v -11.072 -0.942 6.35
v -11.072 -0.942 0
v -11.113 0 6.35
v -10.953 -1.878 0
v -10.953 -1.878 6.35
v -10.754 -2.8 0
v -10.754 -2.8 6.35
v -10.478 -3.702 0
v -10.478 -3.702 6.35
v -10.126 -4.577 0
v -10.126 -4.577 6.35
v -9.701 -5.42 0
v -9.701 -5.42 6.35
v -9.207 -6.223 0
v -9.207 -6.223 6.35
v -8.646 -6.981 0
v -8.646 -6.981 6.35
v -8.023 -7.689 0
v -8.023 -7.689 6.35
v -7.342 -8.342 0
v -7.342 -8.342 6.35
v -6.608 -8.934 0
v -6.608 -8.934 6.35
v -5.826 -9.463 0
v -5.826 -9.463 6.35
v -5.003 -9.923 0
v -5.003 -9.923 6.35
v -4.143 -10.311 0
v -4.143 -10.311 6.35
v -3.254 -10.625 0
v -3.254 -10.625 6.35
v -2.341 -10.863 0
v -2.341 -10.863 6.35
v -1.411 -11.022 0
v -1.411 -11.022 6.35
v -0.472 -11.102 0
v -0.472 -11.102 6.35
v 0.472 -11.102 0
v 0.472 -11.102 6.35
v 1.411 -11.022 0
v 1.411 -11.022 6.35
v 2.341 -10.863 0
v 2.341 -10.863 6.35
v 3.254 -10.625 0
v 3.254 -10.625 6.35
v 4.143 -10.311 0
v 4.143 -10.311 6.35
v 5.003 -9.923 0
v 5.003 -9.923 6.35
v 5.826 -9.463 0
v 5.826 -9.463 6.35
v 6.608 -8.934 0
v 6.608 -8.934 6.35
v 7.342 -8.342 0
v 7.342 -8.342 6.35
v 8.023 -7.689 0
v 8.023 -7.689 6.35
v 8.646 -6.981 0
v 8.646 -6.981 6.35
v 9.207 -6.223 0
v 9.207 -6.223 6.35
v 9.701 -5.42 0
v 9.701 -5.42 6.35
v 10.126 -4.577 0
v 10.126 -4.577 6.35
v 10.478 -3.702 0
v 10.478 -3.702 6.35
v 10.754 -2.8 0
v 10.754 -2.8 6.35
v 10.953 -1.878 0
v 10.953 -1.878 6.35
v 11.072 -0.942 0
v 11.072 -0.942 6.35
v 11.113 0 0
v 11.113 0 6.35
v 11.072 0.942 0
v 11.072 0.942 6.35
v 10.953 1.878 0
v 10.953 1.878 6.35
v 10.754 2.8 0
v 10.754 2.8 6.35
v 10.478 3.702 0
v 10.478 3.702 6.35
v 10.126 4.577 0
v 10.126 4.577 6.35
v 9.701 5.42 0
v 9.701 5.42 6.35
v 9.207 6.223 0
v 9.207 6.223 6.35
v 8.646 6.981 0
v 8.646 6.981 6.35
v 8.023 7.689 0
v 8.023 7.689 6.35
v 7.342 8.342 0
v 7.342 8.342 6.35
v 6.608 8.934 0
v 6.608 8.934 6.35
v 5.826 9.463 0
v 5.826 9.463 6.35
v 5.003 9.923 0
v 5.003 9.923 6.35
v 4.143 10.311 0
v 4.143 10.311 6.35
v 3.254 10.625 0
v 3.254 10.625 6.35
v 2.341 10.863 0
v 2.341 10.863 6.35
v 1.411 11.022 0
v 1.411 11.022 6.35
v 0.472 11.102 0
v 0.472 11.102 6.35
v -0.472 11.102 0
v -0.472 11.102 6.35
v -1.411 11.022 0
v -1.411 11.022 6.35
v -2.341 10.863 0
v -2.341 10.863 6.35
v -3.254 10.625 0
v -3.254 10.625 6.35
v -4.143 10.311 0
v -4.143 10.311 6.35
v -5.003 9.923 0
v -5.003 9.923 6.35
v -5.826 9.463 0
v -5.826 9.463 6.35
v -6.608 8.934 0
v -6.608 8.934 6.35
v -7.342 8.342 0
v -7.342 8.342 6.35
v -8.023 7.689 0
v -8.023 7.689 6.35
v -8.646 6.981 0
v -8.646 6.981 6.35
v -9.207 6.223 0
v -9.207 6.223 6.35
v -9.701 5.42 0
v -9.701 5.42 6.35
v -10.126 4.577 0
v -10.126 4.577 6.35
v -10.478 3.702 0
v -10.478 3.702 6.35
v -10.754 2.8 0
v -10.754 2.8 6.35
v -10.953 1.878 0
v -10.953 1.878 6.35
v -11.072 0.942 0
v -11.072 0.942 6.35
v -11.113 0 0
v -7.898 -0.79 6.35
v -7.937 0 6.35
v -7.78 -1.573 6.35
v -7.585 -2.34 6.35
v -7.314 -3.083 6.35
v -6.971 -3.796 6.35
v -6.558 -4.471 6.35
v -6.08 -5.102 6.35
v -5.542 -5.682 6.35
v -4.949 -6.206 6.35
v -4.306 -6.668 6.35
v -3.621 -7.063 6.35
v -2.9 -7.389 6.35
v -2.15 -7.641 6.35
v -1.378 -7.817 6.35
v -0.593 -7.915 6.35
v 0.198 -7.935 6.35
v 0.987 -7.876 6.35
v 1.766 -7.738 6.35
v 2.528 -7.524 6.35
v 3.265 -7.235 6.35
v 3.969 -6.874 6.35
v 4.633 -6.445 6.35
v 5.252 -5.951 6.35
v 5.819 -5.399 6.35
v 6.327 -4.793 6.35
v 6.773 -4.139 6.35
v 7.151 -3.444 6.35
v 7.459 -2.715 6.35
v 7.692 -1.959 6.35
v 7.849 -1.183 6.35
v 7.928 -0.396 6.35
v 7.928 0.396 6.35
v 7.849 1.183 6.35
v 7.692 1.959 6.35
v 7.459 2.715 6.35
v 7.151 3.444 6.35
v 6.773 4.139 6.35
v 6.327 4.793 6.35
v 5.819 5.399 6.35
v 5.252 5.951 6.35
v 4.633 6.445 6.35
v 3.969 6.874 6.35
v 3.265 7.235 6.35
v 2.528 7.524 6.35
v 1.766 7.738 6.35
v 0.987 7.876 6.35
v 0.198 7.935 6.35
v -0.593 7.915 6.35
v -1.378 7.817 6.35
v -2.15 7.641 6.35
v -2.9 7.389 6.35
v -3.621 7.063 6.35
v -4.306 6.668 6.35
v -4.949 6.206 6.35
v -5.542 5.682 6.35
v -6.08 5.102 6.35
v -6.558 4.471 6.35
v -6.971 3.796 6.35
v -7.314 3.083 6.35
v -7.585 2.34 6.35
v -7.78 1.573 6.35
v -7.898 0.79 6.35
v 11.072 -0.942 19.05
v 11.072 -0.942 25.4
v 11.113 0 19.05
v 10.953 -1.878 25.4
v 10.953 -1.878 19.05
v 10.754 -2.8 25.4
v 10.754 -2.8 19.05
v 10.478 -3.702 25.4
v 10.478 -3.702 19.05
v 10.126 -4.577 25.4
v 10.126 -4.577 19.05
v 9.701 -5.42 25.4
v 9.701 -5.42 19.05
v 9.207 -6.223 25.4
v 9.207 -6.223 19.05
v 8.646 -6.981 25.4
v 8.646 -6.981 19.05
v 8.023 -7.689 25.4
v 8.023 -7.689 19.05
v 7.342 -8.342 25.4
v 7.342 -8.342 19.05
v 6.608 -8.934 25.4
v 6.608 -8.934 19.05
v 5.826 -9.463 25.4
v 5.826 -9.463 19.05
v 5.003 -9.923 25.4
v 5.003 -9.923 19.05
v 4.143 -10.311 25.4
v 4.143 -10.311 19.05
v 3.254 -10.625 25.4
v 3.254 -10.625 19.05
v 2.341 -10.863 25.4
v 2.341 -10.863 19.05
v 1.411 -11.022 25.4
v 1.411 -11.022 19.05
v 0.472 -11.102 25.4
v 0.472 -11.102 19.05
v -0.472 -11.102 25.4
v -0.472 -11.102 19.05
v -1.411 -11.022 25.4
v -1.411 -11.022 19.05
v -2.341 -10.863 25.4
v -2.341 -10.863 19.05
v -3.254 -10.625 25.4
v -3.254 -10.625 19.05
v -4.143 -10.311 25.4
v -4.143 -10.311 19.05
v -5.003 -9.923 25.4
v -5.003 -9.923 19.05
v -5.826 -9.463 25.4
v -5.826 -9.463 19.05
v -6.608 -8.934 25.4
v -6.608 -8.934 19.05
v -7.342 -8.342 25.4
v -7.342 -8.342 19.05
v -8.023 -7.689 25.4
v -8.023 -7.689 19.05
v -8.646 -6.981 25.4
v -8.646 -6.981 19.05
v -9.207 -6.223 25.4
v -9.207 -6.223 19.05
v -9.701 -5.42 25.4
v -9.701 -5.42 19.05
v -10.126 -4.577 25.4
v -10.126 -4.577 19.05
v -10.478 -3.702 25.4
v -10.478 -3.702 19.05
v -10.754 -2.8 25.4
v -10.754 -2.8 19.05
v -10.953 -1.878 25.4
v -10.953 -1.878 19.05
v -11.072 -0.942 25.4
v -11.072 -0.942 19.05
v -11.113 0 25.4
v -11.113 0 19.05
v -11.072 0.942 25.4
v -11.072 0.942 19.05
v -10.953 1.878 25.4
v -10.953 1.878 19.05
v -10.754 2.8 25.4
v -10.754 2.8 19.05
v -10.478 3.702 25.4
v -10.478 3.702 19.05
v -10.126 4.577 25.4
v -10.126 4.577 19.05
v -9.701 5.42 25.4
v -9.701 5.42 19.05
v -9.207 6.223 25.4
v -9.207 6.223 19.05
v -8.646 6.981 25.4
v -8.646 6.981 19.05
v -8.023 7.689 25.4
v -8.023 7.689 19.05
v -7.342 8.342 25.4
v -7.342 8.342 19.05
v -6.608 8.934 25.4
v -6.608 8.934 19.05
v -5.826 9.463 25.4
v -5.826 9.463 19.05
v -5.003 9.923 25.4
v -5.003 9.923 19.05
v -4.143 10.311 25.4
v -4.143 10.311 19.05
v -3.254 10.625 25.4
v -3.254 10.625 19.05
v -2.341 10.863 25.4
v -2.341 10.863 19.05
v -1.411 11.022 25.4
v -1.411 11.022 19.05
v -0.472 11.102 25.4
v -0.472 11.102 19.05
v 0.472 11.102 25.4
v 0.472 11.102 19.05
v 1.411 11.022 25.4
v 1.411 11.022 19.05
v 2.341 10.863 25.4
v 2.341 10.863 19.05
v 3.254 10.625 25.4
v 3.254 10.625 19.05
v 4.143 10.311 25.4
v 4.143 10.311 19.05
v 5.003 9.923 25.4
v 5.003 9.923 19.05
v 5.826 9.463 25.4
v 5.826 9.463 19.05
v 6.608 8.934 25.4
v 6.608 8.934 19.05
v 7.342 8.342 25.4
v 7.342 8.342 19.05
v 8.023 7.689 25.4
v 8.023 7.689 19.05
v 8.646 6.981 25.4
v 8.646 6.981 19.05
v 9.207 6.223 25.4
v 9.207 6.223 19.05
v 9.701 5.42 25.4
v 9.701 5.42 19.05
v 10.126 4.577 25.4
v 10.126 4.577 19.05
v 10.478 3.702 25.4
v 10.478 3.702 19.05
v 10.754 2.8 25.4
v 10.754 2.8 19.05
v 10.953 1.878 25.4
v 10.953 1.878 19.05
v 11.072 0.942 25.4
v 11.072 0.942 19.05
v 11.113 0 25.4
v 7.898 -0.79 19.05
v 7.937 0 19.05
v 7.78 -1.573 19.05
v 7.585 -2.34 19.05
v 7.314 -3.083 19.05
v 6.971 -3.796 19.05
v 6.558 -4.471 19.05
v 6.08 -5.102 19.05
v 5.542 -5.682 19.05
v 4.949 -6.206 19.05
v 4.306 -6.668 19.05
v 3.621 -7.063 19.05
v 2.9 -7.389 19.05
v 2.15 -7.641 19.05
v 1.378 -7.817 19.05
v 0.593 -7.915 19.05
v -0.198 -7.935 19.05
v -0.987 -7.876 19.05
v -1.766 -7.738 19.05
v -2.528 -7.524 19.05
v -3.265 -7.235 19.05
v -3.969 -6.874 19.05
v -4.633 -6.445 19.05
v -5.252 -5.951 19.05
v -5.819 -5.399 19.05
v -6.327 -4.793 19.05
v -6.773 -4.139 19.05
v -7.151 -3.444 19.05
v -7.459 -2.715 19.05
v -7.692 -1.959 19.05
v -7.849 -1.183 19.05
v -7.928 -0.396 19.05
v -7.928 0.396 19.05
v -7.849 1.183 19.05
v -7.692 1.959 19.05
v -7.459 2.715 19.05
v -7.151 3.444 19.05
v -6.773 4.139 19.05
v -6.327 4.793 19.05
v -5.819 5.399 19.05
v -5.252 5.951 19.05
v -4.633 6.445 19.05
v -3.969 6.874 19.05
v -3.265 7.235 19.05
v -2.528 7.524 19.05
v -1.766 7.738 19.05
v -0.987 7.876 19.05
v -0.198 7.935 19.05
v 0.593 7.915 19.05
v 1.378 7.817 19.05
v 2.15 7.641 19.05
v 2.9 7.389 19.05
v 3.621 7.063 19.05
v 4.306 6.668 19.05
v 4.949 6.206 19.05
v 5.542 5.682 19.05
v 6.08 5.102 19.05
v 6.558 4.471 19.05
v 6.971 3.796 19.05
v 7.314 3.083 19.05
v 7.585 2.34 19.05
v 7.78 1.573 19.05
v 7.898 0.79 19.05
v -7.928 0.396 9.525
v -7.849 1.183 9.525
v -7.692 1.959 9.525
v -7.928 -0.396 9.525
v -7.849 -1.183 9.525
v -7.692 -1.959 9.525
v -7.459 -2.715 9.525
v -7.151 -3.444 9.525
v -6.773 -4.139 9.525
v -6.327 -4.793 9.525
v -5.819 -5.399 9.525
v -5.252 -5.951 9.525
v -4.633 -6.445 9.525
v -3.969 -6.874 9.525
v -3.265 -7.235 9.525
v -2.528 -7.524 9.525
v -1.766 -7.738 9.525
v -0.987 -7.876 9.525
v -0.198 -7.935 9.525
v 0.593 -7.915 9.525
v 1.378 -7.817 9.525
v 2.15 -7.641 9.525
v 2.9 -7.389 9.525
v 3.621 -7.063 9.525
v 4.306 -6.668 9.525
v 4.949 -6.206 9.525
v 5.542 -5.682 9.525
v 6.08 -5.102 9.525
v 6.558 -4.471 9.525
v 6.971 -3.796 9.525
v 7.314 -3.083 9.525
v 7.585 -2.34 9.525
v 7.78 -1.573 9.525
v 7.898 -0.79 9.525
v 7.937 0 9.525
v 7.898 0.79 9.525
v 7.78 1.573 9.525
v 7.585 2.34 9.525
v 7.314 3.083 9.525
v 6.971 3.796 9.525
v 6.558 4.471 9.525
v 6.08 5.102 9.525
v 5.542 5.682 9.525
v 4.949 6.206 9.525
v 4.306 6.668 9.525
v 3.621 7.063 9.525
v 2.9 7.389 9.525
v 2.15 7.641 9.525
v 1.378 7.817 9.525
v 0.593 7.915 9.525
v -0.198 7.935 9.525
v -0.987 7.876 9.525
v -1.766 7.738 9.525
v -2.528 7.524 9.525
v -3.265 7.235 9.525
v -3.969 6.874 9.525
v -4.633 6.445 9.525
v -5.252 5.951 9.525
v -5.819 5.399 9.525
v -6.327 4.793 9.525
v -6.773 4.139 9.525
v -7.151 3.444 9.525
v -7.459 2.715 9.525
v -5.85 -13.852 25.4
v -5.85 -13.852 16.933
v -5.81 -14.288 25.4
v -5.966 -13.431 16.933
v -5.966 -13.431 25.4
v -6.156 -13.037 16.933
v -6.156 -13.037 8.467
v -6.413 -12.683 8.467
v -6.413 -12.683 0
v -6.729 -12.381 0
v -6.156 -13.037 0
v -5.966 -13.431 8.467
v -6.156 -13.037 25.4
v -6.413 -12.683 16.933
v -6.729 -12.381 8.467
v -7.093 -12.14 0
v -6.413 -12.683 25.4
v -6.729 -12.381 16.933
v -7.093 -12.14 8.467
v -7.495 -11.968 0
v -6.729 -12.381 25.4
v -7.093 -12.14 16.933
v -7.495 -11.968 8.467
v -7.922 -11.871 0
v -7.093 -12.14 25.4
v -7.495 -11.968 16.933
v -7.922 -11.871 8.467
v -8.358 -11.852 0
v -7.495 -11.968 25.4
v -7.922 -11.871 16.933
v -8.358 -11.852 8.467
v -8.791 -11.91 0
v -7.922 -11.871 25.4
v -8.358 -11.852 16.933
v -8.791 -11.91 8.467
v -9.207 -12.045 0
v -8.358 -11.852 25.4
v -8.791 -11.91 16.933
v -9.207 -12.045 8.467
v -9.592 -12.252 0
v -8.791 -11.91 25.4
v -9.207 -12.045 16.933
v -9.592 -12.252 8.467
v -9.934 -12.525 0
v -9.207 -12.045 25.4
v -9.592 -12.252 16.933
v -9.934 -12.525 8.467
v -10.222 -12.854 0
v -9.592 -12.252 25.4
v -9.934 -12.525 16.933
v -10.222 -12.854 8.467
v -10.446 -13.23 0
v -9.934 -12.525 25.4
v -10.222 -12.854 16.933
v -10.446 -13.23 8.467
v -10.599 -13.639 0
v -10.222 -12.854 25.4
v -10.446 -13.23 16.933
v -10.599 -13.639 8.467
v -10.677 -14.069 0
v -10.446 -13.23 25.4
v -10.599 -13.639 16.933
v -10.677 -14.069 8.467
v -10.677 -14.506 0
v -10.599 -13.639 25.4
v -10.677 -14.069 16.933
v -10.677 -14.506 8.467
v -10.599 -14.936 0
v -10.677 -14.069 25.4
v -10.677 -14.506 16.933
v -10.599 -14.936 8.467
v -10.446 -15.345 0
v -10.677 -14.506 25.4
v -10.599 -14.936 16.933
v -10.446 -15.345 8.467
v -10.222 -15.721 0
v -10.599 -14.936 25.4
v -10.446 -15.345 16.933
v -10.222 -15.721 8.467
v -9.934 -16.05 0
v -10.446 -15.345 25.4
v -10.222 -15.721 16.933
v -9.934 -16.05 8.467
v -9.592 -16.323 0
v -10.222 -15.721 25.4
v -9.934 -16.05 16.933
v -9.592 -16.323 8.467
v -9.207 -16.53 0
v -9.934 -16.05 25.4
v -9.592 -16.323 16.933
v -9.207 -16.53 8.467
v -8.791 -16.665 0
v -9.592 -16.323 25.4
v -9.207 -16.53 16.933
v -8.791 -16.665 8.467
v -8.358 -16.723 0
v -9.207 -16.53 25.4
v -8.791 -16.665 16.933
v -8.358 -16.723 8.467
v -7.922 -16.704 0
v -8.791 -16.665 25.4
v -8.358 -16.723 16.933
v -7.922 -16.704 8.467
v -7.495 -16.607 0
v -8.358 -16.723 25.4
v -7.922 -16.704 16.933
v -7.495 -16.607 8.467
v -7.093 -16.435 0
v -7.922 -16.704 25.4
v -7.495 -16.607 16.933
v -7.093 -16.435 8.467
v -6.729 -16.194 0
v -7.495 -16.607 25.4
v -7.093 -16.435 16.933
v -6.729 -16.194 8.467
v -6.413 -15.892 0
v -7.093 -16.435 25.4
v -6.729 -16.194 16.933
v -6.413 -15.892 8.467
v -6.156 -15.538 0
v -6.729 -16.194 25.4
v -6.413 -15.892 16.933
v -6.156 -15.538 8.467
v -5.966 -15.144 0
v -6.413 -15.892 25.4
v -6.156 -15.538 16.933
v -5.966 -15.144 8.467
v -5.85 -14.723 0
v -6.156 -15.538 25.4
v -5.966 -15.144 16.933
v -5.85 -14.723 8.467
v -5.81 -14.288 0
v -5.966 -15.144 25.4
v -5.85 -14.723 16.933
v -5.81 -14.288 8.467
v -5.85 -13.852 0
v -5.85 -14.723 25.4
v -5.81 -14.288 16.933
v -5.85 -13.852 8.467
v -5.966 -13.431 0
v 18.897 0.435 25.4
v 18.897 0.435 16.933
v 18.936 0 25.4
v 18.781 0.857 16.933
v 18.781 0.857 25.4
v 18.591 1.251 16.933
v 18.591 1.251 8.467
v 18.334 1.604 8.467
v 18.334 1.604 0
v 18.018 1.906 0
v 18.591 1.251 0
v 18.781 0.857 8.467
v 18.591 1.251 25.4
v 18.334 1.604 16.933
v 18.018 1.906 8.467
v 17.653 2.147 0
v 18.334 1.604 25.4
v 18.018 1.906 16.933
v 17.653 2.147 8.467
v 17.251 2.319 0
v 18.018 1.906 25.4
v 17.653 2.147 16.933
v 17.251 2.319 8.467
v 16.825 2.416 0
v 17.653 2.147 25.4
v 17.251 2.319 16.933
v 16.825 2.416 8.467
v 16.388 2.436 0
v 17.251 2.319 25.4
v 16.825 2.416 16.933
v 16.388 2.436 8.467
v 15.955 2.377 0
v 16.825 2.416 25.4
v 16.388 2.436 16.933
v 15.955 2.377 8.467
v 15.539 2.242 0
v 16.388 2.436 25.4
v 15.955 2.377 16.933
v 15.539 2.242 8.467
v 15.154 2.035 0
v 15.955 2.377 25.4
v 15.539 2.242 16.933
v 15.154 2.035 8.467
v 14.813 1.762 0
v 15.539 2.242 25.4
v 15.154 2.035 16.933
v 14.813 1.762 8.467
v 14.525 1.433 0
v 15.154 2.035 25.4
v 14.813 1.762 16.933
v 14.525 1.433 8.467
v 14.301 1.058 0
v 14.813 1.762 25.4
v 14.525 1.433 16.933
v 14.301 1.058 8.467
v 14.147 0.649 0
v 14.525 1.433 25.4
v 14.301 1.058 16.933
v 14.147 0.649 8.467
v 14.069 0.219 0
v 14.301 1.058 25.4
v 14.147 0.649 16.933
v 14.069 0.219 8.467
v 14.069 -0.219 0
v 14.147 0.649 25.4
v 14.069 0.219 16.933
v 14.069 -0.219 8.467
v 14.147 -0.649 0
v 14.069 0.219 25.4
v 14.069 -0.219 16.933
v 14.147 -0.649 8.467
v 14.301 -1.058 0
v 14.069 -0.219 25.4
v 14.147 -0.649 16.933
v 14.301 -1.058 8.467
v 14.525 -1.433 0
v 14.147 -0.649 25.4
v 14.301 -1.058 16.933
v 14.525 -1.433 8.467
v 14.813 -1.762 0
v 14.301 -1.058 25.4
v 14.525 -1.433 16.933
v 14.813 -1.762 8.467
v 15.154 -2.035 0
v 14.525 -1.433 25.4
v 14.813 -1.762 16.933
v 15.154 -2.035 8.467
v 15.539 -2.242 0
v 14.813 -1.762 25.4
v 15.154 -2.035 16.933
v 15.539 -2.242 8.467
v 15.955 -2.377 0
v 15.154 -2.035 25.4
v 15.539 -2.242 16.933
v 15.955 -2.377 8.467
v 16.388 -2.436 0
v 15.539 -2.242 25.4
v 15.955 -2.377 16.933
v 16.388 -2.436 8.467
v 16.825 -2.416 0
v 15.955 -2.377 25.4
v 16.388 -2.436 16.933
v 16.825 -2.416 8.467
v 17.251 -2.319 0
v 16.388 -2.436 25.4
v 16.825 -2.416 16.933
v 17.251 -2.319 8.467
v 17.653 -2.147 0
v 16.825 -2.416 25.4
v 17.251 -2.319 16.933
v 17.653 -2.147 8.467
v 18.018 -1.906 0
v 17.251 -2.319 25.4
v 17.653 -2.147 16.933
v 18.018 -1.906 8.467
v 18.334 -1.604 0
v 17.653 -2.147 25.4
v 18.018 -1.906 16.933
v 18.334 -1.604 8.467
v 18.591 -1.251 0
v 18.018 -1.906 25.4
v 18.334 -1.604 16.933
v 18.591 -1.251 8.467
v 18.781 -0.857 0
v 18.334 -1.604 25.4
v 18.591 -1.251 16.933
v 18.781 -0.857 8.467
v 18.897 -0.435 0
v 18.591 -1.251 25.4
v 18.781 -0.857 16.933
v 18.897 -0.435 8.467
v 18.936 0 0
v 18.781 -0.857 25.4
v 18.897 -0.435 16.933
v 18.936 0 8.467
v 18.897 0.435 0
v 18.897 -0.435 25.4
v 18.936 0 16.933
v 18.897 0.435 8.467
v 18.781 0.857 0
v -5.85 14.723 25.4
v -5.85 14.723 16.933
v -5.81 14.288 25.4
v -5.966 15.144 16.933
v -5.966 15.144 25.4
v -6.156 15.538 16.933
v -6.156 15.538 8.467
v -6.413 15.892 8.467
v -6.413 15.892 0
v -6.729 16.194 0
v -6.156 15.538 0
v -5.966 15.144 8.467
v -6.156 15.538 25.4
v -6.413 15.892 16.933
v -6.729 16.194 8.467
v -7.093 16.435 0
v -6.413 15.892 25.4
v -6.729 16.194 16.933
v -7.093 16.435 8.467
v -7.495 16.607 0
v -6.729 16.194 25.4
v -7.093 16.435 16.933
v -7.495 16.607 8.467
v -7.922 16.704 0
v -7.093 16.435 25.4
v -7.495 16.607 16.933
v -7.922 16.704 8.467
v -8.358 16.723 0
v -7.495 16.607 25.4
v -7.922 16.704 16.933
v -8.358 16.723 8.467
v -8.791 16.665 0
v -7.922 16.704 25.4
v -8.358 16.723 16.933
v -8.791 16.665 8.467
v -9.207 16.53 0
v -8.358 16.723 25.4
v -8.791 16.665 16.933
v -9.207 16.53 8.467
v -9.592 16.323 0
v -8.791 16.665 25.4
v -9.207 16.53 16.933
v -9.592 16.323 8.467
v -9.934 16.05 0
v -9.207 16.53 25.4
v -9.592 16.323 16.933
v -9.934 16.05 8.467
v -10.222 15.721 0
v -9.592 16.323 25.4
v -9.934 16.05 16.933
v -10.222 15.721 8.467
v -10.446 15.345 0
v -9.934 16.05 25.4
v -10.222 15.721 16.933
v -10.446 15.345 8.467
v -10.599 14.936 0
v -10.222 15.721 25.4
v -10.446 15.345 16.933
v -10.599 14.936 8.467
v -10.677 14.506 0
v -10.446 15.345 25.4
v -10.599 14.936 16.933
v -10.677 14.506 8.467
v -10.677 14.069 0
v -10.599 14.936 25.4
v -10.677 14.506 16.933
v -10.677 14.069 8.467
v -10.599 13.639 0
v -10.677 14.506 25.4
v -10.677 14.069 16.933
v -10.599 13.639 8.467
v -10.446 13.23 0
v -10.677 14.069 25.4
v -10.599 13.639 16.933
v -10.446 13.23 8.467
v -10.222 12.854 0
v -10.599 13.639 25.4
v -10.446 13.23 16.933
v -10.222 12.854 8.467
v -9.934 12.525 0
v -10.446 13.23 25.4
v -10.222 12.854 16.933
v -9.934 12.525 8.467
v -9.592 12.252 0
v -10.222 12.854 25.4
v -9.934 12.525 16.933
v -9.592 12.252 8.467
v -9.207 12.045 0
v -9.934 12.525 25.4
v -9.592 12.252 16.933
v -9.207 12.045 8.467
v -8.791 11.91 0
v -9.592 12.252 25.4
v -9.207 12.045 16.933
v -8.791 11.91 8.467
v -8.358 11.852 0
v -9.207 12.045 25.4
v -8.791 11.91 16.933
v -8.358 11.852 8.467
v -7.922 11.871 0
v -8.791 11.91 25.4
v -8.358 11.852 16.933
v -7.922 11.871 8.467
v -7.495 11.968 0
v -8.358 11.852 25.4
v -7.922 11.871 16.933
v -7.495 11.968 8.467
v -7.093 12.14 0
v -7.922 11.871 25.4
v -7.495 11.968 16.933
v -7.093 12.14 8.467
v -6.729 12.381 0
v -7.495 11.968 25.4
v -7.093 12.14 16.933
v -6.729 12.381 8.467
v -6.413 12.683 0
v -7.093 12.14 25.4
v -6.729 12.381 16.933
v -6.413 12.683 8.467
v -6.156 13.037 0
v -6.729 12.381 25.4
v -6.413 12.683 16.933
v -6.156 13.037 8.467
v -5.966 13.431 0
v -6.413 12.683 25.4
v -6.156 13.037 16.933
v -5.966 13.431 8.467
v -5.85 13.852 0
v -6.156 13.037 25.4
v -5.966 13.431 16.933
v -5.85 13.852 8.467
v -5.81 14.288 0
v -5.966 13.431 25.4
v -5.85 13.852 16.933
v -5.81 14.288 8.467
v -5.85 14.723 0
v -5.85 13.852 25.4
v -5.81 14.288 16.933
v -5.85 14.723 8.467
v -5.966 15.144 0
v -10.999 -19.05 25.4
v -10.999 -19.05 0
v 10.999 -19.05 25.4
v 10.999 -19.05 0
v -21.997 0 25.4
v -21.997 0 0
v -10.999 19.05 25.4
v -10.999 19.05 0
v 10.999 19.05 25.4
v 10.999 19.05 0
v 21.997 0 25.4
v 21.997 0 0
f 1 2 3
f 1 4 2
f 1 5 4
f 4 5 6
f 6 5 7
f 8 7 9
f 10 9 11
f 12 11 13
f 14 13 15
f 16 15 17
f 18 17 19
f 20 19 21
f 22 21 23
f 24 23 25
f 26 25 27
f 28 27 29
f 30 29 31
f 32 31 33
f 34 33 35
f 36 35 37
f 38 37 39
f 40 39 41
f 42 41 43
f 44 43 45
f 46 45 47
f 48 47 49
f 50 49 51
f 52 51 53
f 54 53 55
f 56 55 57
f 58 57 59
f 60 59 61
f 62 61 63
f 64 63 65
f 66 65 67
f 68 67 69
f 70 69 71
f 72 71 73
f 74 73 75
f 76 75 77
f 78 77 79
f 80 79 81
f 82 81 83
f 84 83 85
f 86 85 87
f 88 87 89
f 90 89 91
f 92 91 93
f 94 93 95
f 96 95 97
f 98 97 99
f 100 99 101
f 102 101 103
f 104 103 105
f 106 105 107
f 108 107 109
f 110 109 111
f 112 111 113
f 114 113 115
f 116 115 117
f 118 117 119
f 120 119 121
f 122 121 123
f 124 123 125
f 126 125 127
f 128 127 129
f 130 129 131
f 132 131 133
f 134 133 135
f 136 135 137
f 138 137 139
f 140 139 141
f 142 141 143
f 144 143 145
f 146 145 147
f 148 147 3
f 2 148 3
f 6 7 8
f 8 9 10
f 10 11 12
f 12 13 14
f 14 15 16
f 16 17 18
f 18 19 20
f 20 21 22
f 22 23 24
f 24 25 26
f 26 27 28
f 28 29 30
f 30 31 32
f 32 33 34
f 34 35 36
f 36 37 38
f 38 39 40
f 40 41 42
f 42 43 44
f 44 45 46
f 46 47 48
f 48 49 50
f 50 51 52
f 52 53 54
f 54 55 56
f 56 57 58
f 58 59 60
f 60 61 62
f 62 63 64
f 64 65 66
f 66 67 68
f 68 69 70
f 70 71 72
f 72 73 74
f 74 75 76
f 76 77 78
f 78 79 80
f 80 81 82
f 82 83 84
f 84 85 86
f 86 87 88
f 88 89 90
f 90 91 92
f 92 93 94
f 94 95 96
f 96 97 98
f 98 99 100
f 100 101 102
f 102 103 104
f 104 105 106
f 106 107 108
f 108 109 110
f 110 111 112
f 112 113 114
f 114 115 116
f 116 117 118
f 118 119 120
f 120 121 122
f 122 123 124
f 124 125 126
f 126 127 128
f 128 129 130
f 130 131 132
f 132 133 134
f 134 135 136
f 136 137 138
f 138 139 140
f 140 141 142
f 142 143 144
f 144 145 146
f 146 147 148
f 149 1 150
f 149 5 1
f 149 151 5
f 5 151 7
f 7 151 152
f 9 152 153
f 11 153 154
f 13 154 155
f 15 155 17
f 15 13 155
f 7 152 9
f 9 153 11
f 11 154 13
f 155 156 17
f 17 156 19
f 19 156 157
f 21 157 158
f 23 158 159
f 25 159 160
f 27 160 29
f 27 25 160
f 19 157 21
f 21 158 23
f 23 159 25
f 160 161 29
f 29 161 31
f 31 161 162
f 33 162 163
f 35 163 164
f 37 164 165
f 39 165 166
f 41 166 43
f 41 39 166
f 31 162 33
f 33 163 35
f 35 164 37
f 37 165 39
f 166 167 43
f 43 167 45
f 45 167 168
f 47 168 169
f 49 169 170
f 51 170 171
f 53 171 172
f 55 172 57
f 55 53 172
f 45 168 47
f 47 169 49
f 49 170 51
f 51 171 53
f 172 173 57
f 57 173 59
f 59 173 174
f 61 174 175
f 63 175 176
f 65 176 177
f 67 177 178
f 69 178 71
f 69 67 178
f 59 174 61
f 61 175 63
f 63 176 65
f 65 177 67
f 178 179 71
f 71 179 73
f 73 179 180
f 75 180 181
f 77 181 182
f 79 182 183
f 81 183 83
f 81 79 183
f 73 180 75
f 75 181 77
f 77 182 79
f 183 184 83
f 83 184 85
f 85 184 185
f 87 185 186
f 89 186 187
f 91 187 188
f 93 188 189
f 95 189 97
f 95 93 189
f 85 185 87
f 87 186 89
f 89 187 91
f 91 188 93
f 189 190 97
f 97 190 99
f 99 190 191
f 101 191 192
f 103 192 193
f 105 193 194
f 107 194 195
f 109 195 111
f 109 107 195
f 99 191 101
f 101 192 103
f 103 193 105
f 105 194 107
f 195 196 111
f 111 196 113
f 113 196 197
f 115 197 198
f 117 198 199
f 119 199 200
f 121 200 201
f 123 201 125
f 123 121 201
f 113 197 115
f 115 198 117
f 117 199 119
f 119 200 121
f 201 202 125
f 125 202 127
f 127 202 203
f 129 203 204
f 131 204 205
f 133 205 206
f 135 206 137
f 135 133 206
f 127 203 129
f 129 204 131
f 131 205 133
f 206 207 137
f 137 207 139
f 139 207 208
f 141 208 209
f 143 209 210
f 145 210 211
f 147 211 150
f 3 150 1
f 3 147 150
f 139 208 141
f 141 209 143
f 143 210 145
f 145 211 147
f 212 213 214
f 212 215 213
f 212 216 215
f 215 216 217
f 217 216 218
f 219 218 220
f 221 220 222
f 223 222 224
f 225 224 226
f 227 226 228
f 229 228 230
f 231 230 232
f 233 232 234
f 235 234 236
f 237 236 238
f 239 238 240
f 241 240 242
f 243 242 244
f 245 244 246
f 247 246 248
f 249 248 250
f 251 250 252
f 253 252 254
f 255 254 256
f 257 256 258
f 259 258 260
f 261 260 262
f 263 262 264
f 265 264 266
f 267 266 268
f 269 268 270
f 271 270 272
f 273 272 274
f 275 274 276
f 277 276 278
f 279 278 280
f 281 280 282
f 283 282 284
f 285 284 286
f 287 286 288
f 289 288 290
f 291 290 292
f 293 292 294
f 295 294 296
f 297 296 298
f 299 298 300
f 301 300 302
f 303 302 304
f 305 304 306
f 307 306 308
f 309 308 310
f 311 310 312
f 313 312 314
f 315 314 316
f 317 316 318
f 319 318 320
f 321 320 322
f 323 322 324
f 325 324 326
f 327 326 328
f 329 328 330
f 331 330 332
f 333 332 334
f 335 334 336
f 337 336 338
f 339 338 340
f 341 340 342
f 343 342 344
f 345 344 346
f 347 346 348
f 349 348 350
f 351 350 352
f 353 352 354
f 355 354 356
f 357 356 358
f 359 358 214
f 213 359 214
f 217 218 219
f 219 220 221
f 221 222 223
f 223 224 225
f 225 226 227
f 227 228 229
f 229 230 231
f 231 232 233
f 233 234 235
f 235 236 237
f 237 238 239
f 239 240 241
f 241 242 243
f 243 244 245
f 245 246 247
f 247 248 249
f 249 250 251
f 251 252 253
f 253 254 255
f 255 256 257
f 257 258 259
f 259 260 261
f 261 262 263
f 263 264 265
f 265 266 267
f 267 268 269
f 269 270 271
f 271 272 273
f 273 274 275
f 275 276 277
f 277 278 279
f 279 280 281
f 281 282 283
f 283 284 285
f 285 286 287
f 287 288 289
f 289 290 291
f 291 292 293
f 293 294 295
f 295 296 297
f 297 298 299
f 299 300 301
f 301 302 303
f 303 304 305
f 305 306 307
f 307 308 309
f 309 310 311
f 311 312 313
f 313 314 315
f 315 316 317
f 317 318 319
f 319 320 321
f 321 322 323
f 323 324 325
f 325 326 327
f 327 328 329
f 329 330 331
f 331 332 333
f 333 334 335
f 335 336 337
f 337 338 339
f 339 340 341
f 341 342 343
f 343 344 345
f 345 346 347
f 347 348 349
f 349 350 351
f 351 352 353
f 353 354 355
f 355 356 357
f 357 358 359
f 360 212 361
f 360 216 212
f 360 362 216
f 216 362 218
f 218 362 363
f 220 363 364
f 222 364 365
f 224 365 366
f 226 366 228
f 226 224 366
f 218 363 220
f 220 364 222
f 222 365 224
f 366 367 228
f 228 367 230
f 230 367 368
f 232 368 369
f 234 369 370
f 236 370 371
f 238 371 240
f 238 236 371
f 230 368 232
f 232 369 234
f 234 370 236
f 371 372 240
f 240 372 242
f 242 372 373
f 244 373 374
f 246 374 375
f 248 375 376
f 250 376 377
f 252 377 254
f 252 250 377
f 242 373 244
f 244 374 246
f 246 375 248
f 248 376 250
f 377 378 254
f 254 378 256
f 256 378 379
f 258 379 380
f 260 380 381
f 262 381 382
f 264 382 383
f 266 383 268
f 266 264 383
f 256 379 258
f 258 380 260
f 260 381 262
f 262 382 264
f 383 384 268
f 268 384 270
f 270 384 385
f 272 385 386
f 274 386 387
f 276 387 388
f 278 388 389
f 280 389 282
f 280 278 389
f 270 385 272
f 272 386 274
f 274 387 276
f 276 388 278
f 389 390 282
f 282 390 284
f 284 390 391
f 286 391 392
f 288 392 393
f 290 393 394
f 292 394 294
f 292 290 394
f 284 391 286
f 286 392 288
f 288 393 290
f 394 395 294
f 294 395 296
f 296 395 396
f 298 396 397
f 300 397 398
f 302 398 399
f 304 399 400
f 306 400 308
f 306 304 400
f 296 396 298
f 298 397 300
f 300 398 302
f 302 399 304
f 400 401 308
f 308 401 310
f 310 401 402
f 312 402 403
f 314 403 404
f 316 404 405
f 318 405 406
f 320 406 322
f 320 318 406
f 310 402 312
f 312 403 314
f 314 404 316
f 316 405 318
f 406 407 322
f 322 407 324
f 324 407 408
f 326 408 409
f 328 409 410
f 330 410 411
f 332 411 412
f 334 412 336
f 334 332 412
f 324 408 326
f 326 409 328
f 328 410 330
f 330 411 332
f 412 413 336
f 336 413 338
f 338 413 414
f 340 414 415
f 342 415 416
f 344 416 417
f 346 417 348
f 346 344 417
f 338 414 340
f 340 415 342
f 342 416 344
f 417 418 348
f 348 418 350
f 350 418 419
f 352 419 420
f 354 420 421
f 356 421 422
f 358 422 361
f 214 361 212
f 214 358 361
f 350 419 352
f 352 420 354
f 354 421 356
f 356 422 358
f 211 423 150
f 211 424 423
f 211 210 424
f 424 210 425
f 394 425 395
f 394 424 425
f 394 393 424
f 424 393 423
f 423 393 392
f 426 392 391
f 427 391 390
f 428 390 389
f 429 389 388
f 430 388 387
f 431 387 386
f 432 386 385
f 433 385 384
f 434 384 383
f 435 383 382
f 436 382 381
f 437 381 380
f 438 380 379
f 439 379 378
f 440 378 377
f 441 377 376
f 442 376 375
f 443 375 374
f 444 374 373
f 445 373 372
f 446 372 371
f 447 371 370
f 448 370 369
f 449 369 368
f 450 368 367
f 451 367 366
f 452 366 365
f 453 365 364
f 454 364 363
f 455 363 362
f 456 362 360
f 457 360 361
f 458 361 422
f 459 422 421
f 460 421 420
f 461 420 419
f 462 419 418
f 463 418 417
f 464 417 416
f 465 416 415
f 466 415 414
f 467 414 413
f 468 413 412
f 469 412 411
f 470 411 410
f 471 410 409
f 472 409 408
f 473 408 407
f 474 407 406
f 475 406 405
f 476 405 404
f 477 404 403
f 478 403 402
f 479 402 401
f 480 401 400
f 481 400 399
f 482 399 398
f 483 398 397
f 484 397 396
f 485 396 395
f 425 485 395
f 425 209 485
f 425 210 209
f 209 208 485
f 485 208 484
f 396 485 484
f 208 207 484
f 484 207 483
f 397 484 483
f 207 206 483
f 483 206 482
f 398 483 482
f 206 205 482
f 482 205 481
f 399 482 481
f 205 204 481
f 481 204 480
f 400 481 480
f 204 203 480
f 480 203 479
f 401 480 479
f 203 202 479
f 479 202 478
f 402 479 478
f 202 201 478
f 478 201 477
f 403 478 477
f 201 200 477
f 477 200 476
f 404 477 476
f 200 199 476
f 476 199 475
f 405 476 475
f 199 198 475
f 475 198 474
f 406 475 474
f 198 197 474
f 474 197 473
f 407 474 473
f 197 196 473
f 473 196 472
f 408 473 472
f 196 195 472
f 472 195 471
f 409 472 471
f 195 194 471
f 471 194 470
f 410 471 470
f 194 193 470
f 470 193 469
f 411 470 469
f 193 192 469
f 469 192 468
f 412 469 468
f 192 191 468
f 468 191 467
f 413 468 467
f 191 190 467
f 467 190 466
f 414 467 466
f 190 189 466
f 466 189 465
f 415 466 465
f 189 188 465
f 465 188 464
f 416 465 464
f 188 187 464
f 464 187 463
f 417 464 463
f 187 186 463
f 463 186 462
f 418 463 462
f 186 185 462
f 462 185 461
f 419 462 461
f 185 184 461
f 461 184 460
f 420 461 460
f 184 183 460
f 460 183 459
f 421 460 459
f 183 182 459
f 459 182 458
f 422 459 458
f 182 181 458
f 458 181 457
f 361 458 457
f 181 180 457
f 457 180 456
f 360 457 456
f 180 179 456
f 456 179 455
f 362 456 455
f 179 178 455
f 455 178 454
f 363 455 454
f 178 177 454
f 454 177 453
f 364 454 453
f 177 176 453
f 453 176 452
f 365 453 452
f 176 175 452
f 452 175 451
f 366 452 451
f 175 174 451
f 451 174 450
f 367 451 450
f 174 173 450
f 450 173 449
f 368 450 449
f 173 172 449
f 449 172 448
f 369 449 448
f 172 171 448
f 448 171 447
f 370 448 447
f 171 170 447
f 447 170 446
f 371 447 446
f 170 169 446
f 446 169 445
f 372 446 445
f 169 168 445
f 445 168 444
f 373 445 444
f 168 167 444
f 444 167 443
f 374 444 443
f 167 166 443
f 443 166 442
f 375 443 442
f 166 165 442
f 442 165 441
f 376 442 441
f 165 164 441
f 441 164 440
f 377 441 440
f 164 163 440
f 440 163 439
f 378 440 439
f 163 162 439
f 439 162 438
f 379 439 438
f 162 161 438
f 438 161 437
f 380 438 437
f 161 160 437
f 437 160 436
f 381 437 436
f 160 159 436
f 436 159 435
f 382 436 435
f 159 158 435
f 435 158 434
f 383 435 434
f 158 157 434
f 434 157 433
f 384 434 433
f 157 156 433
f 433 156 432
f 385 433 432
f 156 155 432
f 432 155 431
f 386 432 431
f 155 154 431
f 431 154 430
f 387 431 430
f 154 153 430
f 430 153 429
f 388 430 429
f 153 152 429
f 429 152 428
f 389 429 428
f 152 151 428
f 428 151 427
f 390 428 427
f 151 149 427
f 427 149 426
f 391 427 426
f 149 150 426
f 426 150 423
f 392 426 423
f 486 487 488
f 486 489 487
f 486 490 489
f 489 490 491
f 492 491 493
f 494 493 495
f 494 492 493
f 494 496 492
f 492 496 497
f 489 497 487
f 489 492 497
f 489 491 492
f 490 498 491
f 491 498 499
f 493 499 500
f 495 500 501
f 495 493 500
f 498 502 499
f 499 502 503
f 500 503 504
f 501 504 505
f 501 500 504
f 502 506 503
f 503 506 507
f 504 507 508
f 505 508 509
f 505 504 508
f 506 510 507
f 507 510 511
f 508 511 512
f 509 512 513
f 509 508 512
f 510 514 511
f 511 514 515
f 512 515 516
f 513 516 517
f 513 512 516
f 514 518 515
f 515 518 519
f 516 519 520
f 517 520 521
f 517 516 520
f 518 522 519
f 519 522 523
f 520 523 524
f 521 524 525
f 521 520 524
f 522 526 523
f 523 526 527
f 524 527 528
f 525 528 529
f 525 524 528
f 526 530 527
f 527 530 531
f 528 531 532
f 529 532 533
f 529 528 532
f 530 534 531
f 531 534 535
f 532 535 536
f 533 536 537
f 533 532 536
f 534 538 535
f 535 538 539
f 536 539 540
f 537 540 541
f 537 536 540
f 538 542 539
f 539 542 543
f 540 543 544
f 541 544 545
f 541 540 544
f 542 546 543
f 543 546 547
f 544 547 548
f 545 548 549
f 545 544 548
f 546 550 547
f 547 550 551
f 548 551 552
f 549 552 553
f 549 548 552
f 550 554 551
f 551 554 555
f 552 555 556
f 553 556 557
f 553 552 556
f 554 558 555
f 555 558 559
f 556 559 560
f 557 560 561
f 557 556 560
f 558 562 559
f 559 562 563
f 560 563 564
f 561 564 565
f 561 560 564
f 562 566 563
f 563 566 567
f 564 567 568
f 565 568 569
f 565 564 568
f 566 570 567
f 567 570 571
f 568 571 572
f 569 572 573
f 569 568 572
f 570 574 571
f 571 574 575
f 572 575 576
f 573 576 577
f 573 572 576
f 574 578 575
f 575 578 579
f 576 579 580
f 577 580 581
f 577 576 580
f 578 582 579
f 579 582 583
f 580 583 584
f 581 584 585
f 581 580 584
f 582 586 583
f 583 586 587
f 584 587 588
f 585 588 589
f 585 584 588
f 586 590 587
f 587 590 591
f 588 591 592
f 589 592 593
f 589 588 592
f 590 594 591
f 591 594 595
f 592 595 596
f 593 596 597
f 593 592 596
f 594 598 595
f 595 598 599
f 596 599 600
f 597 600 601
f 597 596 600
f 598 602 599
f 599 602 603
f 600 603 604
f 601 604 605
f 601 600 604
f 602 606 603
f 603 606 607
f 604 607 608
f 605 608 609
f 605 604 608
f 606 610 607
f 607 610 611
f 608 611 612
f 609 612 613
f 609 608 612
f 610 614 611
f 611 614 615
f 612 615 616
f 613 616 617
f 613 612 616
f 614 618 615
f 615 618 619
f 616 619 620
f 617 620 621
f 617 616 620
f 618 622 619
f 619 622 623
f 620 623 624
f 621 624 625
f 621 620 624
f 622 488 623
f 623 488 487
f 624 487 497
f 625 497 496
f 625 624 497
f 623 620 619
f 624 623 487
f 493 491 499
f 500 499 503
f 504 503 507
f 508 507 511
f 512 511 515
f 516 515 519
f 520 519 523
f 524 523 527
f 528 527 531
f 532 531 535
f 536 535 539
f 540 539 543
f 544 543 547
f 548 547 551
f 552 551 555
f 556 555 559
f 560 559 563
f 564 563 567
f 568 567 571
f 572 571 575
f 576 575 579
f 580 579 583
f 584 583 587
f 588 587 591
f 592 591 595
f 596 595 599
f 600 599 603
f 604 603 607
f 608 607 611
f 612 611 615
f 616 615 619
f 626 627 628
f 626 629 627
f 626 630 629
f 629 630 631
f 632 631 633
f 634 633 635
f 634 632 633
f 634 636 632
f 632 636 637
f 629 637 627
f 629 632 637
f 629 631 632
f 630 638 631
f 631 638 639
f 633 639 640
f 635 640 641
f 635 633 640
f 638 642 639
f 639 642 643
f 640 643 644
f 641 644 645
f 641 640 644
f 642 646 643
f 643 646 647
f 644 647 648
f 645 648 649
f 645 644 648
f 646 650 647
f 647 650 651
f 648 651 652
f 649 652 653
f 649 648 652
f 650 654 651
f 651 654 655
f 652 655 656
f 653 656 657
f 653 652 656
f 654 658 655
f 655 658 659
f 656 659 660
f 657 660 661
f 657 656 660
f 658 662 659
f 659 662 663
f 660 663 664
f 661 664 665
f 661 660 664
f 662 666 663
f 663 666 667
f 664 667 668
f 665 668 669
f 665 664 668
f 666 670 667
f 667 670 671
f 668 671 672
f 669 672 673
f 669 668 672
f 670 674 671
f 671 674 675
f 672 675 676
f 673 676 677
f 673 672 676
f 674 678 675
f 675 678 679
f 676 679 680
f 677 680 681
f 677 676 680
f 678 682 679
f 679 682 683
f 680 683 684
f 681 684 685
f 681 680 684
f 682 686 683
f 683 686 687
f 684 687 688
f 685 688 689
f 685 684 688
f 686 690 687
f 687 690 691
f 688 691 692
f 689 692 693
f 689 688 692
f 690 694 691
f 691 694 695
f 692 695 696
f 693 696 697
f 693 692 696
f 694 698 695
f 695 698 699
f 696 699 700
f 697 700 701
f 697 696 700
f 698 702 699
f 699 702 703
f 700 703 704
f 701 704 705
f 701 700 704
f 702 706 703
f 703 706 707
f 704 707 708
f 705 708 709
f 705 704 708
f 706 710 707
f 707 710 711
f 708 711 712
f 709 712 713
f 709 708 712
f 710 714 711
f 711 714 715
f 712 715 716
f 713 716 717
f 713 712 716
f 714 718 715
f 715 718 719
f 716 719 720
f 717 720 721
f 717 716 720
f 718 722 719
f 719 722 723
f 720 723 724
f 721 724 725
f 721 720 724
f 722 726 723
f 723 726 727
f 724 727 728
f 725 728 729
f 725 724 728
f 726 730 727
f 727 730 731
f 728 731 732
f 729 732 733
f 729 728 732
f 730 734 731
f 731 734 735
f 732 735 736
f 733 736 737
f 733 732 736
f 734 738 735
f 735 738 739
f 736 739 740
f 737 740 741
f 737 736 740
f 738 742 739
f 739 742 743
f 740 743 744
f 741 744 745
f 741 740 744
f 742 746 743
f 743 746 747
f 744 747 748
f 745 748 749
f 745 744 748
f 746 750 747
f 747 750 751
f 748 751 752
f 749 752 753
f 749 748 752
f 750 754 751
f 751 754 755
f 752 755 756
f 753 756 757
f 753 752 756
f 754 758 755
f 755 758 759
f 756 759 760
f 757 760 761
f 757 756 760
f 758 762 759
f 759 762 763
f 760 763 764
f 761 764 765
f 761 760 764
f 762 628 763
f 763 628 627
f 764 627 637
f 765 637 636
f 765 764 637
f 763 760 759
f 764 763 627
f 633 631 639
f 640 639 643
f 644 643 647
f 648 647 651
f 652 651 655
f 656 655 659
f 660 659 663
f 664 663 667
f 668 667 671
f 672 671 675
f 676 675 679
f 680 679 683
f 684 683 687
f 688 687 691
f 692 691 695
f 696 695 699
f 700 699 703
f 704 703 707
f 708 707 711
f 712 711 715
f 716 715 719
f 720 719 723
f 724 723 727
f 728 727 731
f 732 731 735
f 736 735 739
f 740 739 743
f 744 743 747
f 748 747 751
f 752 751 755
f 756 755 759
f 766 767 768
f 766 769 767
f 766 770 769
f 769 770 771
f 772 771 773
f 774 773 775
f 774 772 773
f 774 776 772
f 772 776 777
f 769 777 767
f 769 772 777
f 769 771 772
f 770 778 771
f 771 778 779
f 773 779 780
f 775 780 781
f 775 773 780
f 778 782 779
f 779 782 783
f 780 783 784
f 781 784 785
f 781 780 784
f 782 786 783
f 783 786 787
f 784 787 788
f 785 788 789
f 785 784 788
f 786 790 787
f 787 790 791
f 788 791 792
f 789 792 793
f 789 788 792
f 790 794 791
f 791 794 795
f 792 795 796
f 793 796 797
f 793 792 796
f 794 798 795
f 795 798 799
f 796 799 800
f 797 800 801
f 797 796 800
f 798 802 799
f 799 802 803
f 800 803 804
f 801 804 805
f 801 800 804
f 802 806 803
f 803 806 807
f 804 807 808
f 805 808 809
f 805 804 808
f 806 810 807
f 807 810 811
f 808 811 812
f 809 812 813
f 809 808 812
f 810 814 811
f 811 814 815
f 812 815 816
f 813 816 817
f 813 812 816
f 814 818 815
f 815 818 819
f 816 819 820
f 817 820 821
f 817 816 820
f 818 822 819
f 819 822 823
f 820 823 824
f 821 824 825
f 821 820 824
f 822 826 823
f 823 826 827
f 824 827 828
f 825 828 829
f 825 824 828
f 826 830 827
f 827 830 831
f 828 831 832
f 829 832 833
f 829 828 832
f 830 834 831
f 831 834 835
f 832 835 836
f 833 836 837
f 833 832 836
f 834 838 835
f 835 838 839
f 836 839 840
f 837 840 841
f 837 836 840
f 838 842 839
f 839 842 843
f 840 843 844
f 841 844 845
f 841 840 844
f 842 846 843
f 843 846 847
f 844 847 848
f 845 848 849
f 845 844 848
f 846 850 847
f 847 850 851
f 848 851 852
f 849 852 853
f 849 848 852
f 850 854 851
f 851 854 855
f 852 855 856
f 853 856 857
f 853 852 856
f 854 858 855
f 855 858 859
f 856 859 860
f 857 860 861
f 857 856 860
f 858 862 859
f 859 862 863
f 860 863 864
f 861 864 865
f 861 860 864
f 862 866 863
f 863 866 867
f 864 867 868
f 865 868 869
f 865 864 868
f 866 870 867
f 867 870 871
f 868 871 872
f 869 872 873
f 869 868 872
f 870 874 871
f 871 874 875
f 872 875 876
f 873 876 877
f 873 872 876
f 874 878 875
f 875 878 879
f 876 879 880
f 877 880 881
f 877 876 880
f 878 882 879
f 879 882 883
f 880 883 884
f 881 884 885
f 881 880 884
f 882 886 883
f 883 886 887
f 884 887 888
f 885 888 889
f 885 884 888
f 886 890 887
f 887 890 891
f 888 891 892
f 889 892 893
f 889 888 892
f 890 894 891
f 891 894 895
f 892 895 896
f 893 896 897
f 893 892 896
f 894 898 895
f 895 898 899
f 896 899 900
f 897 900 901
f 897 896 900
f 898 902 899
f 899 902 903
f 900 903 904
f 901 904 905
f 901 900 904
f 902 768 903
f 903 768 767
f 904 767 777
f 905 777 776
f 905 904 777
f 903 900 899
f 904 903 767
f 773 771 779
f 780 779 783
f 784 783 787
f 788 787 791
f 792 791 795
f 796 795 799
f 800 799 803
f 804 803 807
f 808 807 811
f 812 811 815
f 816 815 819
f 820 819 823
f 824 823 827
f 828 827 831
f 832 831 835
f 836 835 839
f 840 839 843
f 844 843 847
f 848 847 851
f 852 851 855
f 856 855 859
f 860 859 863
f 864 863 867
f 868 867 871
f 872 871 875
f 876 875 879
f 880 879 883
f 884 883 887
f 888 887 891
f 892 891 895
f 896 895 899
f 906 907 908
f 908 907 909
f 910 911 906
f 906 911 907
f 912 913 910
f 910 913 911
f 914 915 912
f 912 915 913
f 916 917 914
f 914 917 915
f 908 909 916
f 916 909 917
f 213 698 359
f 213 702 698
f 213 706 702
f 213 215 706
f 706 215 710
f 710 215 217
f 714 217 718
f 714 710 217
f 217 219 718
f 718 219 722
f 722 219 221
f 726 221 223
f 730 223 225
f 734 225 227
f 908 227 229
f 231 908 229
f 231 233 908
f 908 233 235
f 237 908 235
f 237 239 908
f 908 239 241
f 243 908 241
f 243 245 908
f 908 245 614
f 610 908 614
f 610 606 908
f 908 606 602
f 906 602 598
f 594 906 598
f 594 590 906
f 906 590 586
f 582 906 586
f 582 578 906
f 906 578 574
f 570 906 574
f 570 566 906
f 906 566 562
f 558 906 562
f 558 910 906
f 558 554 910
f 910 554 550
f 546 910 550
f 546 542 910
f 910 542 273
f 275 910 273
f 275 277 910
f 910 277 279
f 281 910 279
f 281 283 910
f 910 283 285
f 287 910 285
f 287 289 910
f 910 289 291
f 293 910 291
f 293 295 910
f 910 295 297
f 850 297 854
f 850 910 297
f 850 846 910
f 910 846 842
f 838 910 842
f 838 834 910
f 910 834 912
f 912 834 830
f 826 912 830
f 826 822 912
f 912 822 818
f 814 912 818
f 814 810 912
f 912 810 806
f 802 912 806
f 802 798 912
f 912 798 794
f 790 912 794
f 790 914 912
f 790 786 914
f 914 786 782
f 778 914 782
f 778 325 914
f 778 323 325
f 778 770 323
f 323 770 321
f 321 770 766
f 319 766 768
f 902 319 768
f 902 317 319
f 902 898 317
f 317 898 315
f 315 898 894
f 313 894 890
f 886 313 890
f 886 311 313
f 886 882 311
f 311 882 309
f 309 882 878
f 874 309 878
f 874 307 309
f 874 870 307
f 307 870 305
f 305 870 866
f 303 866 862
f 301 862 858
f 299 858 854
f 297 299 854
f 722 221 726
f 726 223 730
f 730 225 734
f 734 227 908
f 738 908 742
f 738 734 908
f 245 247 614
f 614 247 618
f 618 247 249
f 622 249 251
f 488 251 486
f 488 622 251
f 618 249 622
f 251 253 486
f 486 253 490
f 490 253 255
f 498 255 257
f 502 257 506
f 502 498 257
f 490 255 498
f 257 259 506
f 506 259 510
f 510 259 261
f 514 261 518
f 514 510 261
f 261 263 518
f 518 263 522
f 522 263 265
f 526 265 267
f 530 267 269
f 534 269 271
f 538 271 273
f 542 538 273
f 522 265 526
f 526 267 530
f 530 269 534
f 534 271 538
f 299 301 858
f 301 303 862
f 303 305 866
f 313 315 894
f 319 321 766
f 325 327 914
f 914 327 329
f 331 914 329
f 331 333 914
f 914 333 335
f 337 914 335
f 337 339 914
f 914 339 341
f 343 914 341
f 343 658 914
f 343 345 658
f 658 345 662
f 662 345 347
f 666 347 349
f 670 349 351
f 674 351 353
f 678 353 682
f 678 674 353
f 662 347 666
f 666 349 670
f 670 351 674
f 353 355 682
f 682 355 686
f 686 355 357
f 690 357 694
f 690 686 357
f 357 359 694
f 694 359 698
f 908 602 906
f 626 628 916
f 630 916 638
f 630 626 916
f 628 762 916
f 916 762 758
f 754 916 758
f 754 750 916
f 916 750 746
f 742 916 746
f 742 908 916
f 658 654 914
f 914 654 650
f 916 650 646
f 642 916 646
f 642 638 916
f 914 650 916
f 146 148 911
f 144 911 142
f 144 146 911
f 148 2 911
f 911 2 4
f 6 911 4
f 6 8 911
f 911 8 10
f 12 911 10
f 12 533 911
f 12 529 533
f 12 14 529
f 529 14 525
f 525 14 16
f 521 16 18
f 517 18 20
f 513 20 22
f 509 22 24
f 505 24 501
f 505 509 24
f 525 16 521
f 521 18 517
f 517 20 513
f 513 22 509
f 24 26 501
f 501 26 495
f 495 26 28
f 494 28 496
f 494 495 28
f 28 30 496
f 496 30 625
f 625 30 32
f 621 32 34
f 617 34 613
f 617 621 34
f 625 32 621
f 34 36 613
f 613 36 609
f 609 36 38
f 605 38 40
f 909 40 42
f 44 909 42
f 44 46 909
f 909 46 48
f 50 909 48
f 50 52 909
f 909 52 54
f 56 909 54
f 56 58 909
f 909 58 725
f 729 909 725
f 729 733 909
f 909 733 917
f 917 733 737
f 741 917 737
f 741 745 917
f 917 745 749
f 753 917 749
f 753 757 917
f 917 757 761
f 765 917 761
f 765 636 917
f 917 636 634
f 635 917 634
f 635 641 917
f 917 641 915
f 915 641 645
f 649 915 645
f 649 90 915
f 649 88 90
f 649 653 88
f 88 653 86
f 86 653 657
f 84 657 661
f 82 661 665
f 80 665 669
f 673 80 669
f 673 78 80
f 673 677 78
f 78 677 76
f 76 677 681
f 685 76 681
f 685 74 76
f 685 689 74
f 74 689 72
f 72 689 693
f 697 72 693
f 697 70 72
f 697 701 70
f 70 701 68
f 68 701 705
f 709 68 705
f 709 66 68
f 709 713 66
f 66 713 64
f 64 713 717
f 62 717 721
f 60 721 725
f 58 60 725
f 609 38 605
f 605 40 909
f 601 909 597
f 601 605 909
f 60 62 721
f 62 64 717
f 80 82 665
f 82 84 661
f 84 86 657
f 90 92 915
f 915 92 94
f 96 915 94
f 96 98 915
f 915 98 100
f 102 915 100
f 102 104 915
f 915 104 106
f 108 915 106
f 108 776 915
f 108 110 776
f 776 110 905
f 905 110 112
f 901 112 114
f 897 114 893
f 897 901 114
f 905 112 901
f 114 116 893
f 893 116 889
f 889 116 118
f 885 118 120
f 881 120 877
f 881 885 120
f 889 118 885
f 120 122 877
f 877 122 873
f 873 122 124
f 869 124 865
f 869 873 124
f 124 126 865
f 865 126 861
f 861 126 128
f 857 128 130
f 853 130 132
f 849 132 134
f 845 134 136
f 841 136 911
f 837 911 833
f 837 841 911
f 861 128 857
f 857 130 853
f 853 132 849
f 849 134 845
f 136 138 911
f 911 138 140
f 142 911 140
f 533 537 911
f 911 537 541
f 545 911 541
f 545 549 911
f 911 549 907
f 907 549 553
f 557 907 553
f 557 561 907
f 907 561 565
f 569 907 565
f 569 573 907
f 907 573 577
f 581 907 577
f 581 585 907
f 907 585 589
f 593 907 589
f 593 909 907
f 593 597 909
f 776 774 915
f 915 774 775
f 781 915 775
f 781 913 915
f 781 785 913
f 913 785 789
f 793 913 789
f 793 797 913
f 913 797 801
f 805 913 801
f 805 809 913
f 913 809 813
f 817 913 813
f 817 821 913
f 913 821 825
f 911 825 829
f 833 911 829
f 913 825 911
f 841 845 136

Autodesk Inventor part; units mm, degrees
ref_plane "YZ Plane" through (0, 0, 0) normal (1, 0, 0) x (0, 1, 0)
ref_plane "XZ Plane" through (0, 0, 0) normal (0, 1, 0) x (-1, 0, 0)
ref_plane "XY Plane" through (0, 0, 0) normal (0, 0, 1) x (1, 0, 0)
sketch "Sketch1" plane through (0, 0, 0) normal (0, 0, 1) x (1, 0, 0)
  line L0 (21.997, 0) -> (10.9985, -19.05)
  line L1 (10.9985, -19.05) -> (-10.9985, -19.05)
  line L2 (-10.9985, -19.05) -> (-21.997, 0)
  line L3 (-21.997, 0) -> (-10.9985, 19.05)
  line L4 (-10.9985, 19.05) -> (10.9985, 19.05)
  line L5 (10.9985, 19.05) -> (21.997, 0)
  circle A0 centre (0, 0) radius 7.9375
  line L6 (8.2489, 14.2875) -> (16.4978, 0) construction
  line L7 (16.4978, 0) -> (8.2489, -14.2875) construction
  line L8 (8.2489, -14.2875) -> (-8.2489, -14.2875) construction
  line L9 (-8.2489, -14.2875) -> (-16.4978, 0) construction
  line L10 (-16.4978, 0) -> (-8.2489, 14.2875) construction
  line L11 (-8.2489, 14.2875) -> (8.2489, 14.2875) construction
  circle A1 centre (-8.2489, 14.2875) radius 2.4384
  circle A2 centre (16.4978, 0) radius 2.4384
  circle A3 centre (-8.2489, -14.2875) radius 2.4384
  dimension "d0" = 15.875
  dimension "d1" = 38.1
  dimension "d2" = 28.575
  dimension "d3" = 4.8768
extrude "Extrusion1" add sketch "Sketch1" along normal blind 25.4
sketch "Sketch2" plane through (0, 0, 25.4) normal (0, 0, 1) x (1, 0, 0)
  circle A0 centre (0, 0) radius 7.9375 projected
  circle A1 centre (0, 0) radius 11.1125
  dimension "d6" = 22.225
extrude "Extrusion2" cut sketch "Sketch2" against normal blind 6.35
sketch "Sketch3" plane through (0, 0, 0) normal (0, 0, -1) x (-1, 0, 0)
  circle A0 centre (0, 0) radius 7.9375 projected
  circle A1 centre (0, 0) radius 11.1125
  dimension "d9" = 22.225
extrude "Extrusion3" cut sketch "Sketch3" against normal blind 6.35
properties part number "BearingBlock" material "Aluminum-6061"
